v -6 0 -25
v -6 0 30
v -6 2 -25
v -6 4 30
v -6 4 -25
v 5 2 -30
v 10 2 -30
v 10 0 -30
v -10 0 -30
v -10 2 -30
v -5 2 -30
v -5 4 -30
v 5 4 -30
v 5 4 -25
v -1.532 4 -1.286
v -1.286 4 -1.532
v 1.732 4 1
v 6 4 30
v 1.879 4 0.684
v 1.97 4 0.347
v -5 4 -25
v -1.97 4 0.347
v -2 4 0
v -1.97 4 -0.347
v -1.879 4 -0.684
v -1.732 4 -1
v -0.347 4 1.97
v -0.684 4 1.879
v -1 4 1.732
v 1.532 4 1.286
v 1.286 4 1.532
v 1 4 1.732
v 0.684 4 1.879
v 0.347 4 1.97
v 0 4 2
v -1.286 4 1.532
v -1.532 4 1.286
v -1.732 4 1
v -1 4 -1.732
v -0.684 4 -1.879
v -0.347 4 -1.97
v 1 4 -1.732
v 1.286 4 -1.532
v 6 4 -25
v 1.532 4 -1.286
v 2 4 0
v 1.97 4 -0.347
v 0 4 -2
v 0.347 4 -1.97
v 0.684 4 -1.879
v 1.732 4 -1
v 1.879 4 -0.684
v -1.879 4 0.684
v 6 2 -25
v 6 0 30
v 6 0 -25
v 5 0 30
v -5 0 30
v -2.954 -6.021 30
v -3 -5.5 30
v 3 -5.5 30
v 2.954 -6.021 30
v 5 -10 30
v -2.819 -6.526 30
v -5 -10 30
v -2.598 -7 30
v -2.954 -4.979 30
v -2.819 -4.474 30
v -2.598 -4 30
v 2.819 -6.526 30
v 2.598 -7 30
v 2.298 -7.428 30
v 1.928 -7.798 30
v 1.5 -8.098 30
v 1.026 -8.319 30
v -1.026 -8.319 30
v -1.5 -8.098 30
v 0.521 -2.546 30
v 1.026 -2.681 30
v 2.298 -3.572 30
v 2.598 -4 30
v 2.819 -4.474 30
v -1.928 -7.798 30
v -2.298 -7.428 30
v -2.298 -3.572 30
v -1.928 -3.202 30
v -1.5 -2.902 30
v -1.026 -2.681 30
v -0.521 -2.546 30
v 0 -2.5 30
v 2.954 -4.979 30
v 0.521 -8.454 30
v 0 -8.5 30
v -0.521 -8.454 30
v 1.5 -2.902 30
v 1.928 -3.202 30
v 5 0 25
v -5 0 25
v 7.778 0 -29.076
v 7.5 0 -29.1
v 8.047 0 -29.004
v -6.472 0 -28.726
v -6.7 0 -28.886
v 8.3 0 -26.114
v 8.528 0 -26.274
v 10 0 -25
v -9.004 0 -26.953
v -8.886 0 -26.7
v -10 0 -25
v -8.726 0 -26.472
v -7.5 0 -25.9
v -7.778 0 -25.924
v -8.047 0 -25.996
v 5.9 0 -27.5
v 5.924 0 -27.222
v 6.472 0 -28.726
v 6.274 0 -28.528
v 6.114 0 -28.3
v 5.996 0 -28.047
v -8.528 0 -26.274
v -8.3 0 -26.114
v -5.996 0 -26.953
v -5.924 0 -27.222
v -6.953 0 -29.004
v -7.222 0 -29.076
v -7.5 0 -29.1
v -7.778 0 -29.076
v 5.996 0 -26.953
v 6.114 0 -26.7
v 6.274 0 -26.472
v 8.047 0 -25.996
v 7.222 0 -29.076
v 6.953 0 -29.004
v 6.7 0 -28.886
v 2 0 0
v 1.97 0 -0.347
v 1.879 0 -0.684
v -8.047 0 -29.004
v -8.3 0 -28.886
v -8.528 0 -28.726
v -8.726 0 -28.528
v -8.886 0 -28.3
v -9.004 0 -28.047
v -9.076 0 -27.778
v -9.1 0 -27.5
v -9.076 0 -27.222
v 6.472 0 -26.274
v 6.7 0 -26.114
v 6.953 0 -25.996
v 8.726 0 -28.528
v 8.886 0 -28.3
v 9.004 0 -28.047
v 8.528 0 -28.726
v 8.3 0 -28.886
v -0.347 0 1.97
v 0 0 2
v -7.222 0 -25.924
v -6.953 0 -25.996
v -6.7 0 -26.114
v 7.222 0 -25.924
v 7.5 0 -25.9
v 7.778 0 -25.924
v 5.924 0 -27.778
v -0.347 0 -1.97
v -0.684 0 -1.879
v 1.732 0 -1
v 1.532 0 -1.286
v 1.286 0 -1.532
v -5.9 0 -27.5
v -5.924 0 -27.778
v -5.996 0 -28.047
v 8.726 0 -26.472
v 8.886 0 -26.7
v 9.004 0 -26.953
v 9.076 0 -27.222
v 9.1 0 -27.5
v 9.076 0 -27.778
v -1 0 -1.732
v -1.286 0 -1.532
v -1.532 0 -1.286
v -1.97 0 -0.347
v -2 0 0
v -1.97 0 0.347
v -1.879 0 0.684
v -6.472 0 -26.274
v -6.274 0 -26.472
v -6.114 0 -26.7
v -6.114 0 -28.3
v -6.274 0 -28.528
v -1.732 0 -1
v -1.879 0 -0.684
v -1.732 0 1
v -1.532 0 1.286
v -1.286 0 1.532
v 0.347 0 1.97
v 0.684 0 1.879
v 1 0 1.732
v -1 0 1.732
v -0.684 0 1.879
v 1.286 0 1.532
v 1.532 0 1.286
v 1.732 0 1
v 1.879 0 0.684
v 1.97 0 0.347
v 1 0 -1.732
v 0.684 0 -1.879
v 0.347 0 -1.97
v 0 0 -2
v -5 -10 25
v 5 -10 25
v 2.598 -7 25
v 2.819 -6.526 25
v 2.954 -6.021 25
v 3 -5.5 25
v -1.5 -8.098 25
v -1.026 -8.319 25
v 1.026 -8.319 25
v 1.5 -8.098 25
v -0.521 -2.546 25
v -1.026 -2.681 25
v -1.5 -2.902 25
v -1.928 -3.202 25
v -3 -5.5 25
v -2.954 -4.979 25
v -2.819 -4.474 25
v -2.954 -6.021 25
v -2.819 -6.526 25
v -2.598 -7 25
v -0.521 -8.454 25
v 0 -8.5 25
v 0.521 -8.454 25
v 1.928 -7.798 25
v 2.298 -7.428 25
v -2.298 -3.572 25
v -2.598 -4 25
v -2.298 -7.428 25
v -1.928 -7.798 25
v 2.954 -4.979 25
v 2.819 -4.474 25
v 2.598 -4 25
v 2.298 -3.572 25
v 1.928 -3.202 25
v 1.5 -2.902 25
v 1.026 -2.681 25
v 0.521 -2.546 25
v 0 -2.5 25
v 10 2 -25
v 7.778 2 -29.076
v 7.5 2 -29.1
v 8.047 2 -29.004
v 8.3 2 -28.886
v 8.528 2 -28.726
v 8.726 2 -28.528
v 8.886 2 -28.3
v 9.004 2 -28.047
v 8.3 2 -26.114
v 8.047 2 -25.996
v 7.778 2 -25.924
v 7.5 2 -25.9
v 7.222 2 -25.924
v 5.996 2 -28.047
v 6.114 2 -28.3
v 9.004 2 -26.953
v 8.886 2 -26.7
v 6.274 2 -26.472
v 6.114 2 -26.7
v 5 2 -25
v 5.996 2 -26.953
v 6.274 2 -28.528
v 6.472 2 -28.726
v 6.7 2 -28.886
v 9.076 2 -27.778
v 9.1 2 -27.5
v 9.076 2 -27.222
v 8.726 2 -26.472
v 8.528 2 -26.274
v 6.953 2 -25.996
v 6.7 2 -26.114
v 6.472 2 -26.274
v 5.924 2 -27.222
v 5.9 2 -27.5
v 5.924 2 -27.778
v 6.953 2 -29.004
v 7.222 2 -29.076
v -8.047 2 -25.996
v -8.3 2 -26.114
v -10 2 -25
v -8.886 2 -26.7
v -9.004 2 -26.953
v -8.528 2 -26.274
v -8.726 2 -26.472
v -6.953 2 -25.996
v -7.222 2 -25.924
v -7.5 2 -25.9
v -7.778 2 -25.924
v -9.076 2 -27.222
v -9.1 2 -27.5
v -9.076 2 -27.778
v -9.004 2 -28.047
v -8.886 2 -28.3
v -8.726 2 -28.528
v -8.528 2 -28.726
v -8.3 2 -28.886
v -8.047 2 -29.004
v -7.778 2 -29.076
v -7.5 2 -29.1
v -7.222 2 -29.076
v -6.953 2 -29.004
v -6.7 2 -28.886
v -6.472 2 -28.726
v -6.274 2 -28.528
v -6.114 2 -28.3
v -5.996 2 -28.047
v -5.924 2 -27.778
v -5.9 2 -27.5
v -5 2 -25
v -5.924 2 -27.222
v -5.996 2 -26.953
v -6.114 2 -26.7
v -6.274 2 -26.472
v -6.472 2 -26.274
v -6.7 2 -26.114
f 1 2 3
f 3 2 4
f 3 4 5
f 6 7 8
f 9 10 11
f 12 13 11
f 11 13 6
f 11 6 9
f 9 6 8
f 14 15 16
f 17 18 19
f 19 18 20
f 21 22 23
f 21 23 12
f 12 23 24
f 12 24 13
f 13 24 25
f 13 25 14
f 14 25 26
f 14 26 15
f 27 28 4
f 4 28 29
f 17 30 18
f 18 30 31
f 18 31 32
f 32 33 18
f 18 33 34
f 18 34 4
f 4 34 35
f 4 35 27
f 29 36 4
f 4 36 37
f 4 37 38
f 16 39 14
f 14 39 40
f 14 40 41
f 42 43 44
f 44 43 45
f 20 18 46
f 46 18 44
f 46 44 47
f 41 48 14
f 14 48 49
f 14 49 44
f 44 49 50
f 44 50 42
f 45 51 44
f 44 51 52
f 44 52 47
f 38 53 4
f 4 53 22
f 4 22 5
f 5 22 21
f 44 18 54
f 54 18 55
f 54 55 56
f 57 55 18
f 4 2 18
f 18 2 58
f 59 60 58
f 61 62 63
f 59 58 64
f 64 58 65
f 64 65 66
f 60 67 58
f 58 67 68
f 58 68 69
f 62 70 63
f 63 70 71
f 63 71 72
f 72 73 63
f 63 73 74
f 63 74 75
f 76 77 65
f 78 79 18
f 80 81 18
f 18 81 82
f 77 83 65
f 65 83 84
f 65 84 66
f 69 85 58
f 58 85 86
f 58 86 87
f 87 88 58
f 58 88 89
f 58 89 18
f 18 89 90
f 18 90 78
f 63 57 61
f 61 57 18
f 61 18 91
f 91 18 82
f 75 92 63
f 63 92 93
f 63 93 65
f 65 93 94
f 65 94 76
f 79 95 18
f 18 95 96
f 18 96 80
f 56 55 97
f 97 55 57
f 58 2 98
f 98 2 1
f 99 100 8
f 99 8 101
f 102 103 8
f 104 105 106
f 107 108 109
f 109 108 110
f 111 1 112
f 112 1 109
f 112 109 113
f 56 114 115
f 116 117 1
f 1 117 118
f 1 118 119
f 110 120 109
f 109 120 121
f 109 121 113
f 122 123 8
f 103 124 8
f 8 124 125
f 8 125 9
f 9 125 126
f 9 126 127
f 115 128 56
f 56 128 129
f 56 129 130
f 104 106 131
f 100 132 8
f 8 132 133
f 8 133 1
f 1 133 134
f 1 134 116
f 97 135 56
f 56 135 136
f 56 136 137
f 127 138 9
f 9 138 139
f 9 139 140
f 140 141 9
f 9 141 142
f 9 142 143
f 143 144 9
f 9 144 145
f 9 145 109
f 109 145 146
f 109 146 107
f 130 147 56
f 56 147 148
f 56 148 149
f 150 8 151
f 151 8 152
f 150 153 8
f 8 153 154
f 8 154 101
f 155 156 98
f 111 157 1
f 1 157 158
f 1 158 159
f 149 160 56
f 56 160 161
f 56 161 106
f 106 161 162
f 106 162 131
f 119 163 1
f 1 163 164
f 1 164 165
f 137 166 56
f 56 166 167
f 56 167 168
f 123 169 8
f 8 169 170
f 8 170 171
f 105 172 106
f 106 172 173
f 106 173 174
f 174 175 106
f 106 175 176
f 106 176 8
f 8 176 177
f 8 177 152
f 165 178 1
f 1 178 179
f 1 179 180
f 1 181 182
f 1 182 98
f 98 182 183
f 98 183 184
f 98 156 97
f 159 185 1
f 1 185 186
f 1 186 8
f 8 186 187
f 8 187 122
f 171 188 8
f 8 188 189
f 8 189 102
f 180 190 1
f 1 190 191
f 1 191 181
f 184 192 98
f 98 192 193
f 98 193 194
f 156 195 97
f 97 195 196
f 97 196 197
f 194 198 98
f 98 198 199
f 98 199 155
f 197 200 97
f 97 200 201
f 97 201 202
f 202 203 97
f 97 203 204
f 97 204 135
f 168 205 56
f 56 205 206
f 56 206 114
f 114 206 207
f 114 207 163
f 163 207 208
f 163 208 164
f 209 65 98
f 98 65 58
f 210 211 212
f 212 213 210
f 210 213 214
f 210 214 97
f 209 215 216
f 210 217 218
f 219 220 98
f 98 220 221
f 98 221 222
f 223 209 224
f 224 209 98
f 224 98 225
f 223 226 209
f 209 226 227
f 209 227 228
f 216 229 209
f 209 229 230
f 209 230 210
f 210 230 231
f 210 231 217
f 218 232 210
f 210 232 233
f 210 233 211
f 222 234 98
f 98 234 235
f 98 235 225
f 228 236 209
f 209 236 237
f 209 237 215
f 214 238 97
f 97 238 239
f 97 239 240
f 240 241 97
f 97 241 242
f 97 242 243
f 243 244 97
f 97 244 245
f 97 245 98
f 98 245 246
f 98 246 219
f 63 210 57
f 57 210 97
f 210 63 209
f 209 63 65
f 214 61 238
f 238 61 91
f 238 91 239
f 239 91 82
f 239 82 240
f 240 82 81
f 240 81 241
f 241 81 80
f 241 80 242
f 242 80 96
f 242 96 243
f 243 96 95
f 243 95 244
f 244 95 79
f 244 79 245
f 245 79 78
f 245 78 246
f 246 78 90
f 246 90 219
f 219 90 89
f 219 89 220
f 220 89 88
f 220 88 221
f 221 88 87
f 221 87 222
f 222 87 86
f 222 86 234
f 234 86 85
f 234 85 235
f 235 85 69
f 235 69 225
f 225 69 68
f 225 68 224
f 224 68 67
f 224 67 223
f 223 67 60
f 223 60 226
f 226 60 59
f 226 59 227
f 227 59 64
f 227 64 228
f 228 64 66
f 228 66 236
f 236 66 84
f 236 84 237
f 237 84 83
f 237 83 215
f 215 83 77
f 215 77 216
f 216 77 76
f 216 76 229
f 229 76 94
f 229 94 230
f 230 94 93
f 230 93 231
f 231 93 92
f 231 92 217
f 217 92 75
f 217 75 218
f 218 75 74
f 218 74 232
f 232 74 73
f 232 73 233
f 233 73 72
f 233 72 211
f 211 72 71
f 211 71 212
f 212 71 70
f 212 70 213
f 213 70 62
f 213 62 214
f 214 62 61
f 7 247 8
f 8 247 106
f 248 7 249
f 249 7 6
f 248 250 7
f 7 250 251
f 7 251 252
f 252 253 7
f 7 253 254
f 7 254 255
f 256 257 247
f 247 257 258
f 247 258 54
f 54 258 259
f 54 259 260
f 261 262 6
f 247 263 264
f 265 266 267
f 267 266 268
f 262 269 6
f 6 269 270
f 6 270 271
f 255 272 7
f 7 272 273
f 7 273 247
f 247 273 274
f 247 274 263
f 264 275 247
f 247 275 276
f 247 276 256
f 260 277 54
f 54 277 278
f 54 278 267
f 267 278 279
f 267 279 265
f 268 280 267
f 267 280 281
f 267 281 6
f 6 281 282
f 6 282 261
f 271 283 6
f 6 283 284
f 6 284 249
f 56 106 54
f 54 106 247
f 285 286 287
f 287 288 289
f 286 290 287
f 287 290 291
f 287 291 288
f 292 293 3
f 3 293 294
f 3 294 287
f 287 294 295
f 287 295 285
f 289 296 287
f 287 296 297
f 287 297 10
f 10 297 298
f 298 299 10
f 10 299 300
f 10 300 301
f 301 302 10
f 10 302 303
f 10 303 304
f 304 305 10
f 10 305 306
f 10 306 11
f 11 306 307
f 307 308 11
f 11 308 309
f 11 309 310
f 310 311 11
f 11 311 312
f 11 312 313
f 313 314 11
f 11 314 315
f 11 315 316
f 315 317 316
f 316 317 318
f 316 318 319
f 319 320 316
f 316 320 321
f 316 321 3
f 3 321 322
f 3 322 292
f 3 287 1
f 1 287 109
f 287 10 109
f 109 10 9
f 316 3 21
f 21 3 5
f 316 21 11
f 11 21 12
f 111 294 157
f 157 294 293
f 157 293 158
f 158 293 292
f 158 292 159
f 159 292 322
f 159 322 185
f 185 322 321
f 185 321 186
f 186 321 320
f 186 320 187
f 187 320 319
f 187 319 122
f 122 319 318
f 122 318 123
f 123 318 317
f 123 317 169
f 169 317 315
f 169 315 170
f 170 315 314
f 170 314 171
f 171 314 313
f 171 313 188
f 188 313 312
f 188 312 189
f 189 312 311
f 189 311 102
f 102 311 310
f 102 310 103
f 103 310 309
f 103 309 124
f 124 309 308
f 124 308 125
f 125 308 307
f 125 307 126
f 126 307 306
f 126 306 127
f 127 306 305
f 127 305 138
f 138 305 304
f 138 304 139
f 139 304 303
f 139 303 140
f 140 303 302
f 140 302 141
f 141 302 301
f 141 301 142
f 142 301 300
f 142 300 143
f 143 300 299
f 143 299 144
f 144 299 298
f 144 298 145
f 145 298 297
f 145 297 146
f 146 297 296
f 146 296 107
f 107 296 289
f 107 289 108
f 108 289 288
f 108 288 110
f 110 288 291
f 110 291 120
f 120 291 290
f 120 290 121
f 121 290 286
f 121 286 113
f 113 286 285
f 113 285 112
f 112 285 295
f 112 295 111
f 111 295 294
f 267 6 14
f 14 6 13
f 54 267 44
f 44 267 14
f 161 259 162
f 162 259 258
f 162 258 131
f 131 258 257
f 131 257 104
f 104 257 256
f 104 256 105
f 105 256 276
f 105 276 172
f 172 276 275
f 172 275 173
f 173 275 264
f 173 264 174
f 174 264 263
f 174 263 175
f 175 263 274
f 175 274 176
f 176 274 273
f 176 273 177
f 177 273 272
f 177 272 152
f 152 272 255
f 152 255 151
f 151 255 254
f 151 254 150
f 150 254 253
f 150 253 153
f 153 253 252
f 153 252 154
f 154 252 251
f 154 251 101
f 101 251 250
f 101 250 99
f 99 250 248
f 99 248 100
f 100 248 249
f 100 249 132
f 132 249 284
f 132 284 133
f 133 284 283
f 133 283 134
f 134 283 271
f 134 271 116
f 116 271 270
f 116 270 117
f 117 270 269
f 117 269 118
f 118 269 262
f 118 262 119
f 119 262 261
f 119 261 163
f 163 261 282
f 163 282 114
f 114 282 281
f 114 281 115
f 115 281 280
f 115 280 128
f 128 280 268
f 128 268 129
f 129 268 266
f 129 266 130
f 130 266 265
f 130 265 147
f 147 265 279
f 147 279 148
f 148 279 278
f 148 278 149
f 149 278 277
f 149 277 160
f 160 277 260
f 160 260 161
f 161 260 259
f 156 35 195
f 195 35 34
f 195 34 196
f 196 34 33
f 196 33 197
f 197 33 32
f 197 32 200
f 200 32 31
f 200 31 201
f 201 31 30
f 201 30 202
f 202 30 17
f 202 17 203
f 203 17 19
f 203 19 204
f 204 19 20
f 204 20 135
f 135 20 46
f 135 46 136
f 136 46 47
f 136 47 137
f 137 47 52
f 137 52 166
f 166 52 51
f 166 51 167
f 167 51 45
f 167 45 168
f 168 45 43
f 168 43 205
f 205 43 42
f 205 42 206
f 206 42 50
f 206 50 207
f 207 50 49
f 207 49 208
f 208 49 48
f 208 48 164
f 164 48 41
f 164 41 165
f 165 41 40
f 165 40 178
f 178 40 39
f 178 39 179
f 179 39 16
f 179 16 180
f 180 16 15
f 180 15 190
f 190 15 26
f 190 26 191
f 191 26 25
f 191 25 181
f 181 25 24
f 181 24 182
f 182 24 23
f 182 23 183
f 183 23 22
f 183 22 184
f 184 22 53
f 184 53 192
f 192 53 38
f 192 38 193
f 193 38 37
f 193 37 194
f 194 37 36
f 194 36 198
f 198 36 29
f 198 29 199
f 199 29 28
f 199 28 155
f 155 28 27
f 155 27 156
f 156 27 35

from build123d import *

# Parameters (mm, degrees)
SKETCH1_W           = 12
SKETCH1_H           = 60
BOSS_EXTRUDE1_DEPTH = 4
SKETCH2_W           = 10
SKETCH2_H           = 5
BOSS_EXTRUDE2_DEPTH = 10
CUT_EXTRUDE1_REACH  = 63.123
SKETCH3_R           = 3
SKETCH6_W           = 20
SKETCH6_H           = 5
BOSS_EXTRUDE4_DEPTH = 2
CUT_EXTRUDE2_REACH  = 35.823
SKETCH13_W          = 5
SKETCH13_H          = 5
CUT_EXTRUDE3_REACH  = 35.823
SKETCH14_R          = 1.6
CUT_EXTRUDE4_REACH  = 36.583
SKETCH4_R           = 2


with BuildPart() as part:
    # Sketch1 → Boss-Extrude1 (new body)
    with BuildSketch(Plane(origin=(0, 0, 0), x_dir=(1, 0, 0), z_dir=(0, 1, 0))):
        Rectangle(SKETCH1_W, SKETCH1_H)
    extrude(amount=BOSS_EXTRUDE1_DEPTH)

    # Sketch2 → Boss-Extrude2 (add)
    with BuildSketch(Plane.XZ):
        with Locations((0, 27.5)):
            Rectangle(SKETCH2_W, SKETCH2_H)
    extrude(amount=BOSS_EXTRUDE2_DEPTH)

    # Sketch3 → Cut-Extrude1 (cut, up to next)
    with BuildSketch(Plane.XY.offset(30), mode=Mode.PRIVATE) as cut_extrude1_sk1:
        with Locations((0, -5.5)):
            Circle(SKETCH3_R)
    cut_extrude1_tool1 = extrude(cut_extrude1_sk1.sketch, amount=-CUT_EXTRUDE1_REACH, mode=Mode.PRIVATE) & part.part
    add(cut_extrude1_tool1.solids().sort_by_distance((0, -5.5, 30))[0], mode=Mode.SUBTRACT)

    # Sketch6 → Boss-Extrude4 (add)
    with BuildSketch(Plane(origin=(0, 0, 0), x_dir=(1, 0, 0), z_dir=(0, 1, 0))):
        with Locations((0, 27.5)):
            Rectangle(SKETCH6_W, SKETCH6_H)
    extrude(amount=BOSS_EXTRUDE4_DEPTH)

    # Sketch13 → Cut-Extrude2 (cut, up to next)
    with BuildSketch(Plane(origin=(0, 2, 0), x_dir=(1, 0, 0), z_dir=(0, 1, 0)), mode=Mode.PRIVATE) as cut_extrude2_sk1:
        with Locations((-7.5, 27.5)):
            Rectangle(SKETCH13_W, SKETCH13_H)
    cut_extrude2_tool1 = extrude(cut_extrude2_sk1.sketch, amount=CUT_EXTRUDE2_REACH, mode=Mode.PRIVATE) & part.part
    cut_extrude2 = cut_extrude2_tool1.solids().sort_by_distance((-7.5, 2, -27.5))[0]
    add(cut_extrude2, mode=Mode.SUBTRACT)

    # Sketch14 → Cut-Extrude3 (cut, up to next)
    with BuildSketch(Plane(origin=(0, 2, 0), x_dir=(1, 0, 0), z_dir=(0, 1, 0)), mode=Mode.PRIVATE) as cut_extrude3_sk1:
        with Locations(Location((-7.5, 27.5, 0), (0, 0, 270))):
            Circle(SKETCH14_R)
    cut_extrude3_tool1 = extrude(cut_extrude3_sk1.sketch, amount=-CUT_EXTRUDE3_REACH, mode=Mode.PRIVATE) & part.part
    cut_extrude3 = cut_extrude3_tool1.solids().sort_by_distance((-7.5, 2, -27.5))[0]
    add(cut_extrude3, mode=Mode.SUBTRACT)

    # Mirror1: Cut-Extrude2, Cut-Extrude3 across plane
    add(cut_extrude2.mirror(Plane(origin=(0, 0, 0), x_dir=(0, 0, 1), z_dir=(1, 0, 0))), mode=Mode.SUBTRACT)
    add(cut_extrude3.mirror(Plane(origin=(0, 0, 0), x_dir=(0, 0, 1), z_dir=(1, 0, 0))), mode=Mode.SUBTRACT)

    # Sketch4 → Cut-Extrude4 (cut, up to next)
    with BuildSketch(Plane(origin=(0, 4, 0), x_dir=(1, 0, 0), z_dir=(0, 1, 0)), mode=Mode.PRIVATE) as cut_extrude4_sk1:
        with Locations(Location((0, 0, 0), (0, 0, 270))):
            Circle(SKETCH4_R)
    cut_extrude4_tool1 = extrude(cut_extrude4_sk1.sketch, amount=-CUT_EXTRUDE4_REACH, mode=Mode.PRIVATE) & part.part
    add(cut_extrude4_tool1.solids().sort_by_distance((0, 4, 0))[0], mode=Mode.SUBTRACT)


solid = part.part
